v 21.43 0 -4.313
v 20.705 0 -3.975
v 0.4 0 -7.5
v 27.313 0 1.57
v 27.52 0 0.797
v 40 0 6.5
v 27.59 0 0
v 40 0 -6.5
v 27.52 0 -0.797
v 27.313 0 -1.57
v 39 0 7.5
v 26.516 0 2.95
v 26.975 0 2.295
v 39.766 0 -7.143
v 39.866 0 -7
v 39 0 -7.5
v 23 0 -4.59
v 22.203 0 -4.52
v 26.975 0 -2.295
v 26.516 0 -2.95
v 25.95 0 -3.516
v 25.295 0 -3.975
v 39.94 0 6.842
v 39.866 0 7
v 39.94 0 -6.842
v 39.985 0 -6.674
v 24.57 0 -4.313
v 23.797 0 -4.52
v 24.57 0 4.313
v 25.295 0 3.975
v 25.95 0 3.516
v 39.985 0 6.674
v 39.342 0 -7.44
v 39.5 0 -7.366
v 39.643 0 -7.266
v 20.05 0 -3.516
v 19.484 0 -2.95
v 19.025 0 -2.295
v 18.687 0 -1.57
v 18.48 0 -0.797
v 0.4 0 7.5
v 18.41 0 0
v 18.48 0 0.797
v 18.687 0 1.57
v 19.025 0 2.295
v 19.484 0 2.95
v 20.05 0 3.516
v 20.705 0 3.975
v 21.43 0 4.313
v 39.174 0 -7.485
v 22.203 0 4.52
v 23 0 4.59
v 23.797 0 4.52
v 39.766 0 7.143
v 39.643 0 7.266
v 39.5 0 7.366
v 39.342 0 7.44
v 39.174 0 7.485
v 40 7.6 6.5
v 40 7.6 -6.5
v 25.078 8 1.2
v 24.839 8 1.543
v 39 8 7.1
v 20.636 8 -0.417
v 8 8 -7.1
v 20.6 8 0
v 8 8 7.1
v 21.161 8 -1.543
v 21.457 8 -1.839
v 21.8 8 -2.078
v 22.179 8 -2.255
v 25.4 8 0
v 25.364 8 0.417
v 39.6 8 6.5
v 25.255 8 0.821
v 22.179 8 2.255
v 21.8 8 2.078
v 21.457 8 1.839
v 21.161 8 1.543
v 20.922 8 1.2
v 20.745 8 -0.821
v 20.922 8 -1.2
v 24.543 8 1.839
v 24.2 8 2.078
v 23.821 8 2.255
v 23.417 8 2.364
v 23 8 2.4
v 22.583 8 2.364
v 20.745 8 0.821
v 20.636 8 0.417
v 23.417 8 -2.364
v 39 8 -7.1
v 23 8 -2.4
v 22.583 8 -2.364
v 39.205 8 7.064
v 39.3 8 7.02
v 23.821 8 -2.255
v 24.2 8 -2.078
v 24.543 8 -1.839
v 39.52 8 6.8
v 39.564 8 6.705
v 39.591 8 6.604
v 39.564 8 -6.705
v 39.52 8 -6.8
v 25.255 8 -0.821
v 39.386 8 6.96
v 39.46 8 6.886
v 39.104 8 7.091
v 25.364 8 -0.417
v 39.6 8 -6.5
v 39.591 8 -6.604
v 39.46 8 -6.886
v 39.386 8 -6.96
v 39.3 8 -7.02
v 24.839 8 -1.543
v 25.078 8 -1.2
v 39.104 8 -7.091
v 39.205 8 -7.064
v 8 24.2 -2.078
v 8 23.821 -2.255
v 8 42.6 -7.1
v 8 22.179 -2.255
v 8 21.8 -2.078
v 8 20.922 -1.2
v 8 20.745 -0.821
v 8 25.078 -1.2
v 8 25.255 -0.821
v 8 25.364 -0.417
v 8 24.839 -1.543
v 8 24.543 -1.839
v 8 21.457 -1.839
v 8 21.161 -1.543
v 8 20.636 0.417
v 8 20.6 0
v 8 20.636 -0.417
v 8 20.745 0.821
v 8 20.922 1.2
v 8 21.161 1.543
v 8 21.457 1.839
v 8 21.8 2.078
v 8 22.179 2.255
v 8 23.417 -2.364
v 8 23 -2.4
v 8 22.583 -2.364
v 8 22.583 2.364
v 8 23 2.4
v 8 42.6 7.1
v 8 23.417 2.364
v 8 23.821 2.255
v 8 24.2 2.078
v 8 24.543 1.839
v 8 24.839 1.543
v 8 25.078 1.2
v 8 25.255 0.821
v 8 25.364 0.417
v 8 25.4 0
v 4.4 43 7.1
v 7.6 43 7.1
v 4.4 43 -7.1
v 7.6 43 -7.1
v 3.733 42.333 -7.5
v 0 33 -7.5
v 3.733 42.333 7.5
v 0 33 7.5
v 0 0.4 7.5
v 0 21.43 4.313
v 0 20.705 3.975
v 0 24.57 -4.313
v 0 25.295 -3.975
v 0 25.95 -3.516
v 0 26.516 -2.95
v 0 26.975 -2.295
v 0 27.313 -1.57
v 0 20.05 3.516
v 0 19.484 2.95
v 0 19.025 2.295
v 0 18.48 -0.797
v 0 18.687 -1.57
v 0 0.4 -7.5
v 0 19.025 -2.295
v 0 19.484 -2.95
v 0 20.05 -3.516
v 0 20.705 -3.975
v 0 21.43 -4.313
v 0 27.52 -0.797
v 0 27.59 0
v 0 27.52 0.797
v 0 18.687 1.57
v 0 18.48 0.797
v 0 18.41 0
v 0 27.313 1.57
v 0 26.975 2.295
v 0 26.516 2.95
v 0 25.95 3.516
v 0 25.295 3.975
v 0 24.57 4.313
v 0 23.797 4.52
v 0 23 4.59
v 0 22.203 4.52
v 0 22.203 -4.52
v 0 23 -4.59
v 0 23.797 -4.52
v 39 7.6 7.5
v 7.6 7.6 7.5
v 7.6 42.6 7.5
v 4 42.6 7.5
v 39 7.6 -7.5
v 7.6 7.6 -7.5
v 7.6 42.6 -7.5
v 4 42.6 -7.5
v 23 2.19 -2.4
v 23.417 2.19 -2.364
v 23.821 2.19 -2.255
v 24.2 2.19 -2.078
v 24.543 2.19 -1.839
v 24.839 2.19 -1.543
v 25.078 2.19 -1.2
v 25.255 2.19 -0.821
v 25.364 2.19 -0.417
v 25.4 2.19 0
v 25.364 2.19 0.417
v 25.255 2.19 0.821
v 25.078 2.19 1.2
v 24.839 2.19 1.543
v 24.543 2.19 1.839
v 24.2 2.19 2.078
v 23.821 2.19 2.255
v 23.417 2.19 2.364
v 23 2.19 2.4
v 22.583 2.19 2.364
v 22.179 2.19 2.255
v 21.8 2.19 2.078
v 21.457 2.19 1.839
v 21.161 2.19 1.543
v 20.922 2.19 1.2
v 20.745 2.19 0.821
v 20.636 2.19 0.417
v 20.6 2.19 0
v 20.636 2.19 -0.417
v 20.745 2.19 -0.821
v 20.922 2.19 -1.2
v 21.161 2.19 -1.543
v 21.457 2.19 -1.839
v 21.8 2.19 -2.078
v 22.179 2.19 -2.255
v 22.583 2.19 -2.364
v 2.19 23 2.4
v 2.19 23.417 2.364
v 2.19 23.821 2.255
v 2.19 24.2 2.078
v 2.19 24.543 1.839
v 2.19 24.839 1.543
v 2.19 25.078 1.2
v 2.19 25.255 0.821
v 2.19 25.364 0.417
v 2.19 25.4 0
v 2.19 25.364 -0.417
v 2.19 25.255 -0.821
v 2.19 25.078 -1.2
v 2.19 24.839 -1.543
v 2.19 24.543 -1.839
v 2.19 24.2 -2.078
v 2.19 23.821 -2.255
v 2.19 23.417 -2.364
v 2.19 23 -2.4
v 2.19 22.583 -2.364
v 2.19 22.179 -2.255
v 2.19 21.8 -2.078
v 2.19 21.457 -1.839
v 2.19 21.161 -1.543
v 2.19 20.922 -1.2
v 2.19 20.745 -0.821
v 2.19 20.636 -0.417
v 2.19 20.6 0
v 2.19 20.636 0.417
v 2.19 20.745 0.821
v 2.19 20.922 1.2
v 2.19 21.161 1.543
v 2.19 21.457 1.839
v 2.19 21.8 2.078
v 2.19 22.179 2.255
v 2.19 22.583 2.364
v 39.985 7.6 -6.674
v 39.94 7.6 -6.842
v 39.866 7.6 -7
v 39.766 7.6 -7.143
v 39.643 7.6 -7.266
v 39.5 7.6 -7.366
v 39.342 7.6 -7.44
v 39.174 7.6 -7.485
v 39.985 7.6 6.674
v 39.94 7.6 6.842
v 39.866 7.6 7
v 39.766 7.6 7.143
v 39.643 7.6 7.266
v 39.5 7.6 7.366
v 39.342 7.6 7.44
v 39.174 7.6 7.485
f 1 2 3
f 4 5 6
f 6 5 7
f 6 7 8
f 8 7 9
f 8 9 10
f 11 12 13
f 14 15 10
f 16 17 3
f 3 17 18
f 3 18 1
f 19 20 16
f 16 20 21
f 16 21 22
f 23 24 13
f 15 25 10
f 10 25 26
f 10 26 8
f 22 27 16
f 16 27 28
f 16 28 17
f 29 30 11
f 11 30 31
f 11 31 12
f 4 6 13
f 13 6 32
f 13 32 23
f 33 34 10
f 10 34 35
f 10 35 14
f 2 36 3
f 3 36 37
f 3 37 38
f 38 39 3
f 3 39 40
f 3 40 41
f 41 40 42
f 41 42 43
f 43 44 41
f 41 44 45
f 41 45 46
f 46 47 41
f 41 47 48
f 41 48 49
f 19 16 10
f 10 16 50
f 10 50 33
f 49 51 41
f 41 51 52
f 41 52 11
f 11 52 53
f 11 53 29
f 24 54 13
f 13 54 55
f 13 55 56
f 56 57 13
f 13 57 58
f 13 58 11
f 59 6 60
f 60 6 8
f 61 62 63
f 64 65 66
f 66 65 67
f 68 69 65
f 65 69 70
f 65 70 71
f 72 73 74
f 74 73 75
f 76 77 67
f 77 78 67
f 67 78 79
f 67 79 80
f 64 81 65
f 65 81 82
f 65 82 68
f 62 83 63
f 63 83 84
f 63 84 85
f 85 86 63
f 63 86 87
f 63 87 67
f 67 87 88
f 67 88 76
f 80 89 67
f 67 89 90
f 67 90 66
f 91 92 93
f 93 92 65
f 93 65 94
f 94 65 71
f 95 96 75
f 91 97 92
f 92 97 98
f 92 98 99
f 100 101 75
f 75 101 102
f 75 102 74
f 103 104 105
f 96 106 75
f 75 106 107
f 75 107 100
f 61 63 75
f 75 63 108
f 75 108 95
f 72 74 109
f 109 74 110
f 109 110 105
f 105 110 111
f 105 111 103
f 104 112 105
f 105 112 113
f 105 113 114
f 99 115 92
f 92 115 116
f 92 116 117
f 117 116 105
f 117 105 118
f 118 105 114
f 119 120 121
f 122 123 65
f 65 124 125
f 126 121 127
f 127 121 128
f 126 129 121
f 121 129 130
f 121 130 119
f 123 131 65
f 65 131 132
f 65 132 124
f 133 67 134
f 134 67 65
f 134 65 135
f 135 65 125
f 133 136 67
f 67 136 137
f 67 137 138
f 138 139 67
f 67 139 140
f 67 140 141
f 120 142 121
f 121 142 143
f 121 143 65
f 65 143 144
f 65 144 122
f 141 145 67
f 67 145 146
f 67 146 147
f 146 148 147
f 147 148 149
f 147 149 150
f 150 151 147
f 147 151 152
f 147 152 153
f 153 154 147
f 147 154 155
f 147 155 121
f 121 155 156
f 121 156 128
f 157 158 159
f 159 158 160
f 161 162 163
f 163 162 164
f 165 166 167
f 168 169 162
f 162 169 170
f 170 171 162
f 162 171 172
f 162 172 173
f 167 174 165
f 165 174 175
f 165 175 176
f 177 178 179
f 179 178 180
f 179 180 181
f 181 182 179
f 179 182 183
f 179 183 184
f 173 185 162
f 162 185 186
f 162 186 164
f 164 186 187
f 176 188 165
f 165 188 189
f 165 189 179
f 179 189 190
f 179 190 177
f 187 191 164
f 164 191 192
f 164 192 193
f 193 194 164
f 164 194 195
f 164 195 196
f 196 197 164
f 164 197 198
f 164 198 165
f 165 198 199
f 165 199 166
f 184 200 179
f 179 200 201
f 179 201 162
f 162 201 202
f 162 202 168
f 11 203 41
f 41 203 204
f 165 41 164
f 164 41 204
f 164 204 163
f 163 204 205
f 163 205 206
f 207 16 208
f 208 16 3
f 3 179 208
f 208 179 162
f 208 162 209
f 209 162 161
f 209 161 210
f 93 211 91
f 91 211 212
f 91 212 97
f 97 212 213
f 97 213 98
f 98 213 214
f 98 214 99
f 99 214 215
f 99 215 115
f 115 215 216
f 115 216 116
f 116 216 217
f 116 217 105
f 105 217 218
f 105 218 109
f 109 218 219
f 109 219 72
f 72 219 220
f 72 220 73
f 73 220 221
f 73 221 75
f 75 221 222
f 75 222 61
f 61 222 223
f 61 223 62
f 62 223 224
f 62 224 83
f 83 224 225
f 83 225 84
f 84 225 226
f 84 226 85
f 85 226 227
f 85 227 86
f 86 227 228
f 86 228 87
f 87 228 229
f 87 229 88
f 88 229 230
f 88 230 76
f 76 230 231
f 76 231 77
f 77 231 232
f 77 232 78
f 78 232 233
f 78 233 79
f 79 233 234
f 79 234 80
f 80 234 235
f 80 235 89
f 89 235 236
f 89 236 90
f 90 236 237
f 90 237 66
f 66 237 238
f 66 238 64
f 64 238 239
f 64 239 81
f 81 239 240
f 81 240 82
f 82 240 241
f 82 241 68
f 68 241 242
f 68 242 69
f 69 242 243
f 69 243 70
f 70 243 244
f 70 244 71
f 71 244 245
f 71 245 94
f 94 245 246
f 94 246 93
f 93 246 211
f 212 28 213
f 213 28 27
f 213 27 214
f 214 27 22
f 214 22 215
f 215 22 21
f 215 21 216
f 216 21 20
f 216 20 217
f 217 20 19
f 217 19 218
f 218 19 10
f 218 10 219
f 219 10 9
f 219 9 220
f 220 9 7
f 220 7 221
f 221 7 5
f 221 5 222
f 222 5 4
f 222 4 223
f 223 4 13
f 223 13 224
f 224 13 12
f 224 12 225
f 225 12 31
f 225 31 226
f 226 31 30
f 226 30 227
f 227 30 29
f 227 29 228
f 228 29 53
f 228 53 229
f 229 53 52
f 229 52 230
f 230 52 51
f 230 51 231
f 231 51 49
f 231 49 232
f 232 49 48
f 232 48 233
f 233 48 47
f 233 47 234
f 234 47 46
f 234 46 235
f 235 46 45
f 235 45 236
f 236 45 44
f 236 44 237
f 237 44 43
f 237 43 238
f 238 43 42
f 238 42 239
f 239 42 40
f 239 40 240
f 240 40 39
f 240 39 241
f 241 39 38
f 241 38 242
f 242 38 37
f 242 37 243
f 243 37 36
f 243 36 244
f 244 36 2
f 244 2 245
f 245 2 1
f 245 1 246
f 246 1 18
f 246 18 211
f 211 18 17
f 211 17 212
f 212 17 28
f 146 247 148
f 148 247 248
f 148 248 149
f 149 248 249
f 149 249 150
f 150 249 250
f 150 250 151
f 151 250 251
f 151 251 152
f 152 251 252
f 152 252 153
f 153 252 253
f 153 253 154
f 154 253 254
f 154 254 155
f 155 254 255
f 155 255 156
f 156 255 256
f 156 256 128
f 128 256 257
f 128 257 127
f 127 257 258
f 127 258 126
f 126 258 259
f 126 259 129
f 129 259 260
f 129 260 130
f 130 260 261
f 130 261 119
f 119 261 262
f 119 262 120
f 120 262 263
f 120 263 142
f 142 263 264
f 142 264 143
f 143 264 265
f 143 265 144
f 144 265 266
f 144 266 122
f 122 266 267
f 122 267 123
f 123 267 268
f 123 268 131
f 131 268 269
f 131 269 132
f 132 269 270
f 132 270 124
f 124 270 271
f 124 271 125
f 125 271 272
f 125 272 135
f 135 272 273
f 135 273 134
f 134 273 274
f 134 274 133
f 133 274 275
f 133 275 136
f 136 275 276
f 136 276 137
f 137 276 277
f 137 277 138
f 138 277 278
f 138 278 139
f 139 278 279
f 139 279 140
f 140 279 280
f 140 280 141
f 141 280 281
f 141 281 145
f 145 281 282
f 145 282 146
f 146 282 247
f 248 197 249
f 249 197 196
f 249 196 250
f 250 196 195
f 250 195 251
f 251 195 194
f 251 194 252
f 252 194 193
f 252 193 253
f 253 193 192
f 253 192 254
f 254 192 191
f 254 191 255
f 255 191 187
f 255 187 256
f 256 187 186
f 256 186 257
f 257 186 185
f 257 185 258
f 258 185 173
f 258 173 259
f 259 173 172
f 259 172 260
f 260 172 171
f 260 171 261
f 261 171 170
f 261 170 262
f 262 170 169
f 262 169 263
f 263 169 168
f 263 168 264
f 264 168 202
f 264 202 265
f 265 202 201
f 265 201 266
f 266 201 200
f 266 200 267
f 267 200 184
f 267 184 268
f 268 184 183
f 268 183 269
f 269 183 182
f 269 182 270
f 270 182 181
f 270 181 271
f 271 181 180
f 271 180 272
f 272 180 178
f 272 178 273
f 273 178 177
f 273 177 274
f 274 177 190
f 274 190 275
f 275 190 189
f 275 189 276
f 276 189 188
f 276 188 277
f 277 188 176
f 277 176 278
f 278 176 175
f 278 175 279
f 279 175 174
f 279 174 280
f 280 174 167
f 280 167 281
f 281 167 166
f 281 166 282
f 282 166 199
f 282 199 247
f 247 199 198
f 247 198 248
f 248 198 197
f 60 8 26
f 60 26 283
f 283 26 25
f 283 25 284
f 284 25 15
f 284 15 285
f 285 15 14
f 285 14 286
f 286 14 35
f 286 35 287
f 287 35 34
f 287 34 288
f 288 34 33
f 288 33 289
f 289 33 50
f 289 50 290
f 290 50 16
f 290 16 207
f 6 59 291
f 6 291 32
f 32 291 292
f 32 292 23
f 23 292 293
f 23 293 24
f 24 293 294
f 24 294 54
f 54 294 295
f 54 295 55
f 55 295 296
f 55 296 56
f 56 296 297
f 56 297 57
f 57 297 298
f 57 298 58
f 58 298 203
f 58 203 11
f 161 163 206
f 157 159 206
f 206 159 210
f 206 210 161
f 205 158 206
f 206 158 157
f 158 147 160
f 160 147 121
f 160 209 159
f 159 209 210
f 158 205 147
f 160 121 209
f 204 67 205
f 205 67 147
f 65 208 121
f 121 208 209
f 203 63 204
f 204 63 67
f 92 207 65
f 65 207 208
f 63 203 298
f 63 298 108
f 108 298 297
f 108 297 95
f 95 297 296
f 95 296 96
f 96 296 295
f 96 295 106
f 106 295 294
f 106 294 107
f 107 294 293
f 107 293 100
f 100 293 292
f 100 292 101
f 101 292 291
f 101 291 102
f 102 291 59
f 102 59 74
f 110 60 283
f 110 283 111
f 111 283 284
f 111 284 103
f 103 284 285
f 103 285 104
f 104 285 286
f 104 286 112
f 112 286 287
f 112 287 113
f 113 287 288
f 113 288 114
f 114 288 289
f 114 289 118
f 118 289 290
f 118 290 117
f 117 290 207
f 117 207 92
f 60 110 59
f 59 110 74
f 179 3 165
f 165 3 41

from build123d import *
from OCP.BRepFilletAPI import BRepFilletAPI_MakeChamfer

# Parameters (mm, degrees)
BOSS_EXTRUDE1_DEPTH                                  = 7.5
CSK_FOR_M4_HEX_SOCKET_COUNTERSUNK_HEAD_S_D           = 4.8
CSK_FOR_M4_HEX_SOCKET_COUNTERSUNK_HEAD_S_CSINK_D     = 9.18
CSK_FOR_M4_HEX_SOCKET_COUNTERSUNK_HEAD_S_CSINK_ANGLE = 90
CSK_FOR_M4_HEX_SOCKET_COUNTERSUNK_HE_2_D             = 4.8
CSK_FOR_M4_HEX_SOCKET_COUNTERSUNK_HE_2_CSINK_D       = 9.18
CSK_FOR_M4_HEX_SOCKET_COUNTERSUNK_HE_2_CSINK_ANGLE   = 90
FILLET1_R                                            = 1
CHAMFER1_SIZE                                        = 0.4
CHAMFER1_SIZE2                                       = 0.718021974


with BuildPart() as part:
    # Sketch1 → Boss-Extrude1 (new, symmetric)
    with BuildSketch(Plane.XY):
        Polygon((0, 0), (0, 33), (4, 43), (8, 43), (8, 8), (40, 8), (40, 0), align=None)
    extrude(amount=BOSS_EXTRUDE1_DEPTH, both=True)

    # CSK for M4 Hex Socket Countersunk Head S (through all)
    with Locations(Plane(origin=(0, 0, 0), x_dir=(-1, 0, 0), z_dir=(0, -1, 0))):
        with Locations((-23, 0)):
            CounterSinkHole(CSK_FOR_M4_HEX_SOCKET_COUNTERSUNK_HEAD_S_D / 2, CSK_FOR_M4_HEX_SOCKET_COUNTERSUNK_HEAD_S_CSINK_D / 2, counter_sink_angle=CSK_FOR_M4_HEX_SOCKET_COUNTERSUNK_HEAD_S_CSINK_ANGLE)

    # CSK for M4 Hex Socket Countersunk He 2 (through all)
    with Locations(Plane.ZY):
        with Locations((0, 23)):
            CounterSinkHole(CSK_FOR_M4_HEX_SOCKET_COUNTERSUNK_HE_2_D / 2, CSK_FOR_M4_HEX_SOCKET_COUNTERSUNK_HE_2_CSINK_D / 2, counter_sink_angle=CSK_FOR_M4_HEX_SOCKET_COUNTERSUNK_HE_2_CSINK_ANGLE)

    # Fillet1
    fillet1_edges = [part.edges().sort_by_distance(p)[0] for p in [
        (40, 4, 7.5),
        (40, 4, -7.5),
    ]]
    fillet(fillet1_edges, radius=FILLET1_R)

    # Chamfer1: one chamfer whose edges measure the first distance from different faces: ONE call of the kernel's chamfer builder (chamfer() names one face for all edges)
    chamfer1_edges_1 = [part.edges().sort_by_distance(p)[0] for p in [
        (0, 0, 0),
        (8, 43, 0),
        (8, 25.5, 7.5),
        (6, 43, 7.5),
        (40, 8, 0),
        (23.5, 8, -7.5),
        (23.5, 8, 7.5),
        (39.707106781, 8, 7.207106781),
        (39.707106781, 8, -7.207106781),
        (6, 43, -7.5),
        (8, 25.5, -7.5),
    ]]
    chamfer1_edges_2 = [part.edges().sort_by_distance(p)[0] for p in [
        (4, 43, 0),
    ]]
    chamfer1_side_2 = [part.faces().sort_by_distance(p)[0] for p in [
        (6, 43, 0),
    ]]
    chamfer1 = BRepFilletAPI_MakeChamfer(part.part.solid().wrapped)
    for e in chamfer1_edges_1:
        chamfer1.Add(CHAMFER1_SIZE, e.wrapped)
    for e in chamfer1_edges_2:
        chamfer1.Add(CHAMFER1_SIZE, CHAMFER1_SIZE2, e.wrapped, chamfer1_side_2[0].wrapped)  # the first distance lies on this face
    add(Compound.cast(chamfer1.Shape()), mode=Mode.REPLACE)


solid = part.part
